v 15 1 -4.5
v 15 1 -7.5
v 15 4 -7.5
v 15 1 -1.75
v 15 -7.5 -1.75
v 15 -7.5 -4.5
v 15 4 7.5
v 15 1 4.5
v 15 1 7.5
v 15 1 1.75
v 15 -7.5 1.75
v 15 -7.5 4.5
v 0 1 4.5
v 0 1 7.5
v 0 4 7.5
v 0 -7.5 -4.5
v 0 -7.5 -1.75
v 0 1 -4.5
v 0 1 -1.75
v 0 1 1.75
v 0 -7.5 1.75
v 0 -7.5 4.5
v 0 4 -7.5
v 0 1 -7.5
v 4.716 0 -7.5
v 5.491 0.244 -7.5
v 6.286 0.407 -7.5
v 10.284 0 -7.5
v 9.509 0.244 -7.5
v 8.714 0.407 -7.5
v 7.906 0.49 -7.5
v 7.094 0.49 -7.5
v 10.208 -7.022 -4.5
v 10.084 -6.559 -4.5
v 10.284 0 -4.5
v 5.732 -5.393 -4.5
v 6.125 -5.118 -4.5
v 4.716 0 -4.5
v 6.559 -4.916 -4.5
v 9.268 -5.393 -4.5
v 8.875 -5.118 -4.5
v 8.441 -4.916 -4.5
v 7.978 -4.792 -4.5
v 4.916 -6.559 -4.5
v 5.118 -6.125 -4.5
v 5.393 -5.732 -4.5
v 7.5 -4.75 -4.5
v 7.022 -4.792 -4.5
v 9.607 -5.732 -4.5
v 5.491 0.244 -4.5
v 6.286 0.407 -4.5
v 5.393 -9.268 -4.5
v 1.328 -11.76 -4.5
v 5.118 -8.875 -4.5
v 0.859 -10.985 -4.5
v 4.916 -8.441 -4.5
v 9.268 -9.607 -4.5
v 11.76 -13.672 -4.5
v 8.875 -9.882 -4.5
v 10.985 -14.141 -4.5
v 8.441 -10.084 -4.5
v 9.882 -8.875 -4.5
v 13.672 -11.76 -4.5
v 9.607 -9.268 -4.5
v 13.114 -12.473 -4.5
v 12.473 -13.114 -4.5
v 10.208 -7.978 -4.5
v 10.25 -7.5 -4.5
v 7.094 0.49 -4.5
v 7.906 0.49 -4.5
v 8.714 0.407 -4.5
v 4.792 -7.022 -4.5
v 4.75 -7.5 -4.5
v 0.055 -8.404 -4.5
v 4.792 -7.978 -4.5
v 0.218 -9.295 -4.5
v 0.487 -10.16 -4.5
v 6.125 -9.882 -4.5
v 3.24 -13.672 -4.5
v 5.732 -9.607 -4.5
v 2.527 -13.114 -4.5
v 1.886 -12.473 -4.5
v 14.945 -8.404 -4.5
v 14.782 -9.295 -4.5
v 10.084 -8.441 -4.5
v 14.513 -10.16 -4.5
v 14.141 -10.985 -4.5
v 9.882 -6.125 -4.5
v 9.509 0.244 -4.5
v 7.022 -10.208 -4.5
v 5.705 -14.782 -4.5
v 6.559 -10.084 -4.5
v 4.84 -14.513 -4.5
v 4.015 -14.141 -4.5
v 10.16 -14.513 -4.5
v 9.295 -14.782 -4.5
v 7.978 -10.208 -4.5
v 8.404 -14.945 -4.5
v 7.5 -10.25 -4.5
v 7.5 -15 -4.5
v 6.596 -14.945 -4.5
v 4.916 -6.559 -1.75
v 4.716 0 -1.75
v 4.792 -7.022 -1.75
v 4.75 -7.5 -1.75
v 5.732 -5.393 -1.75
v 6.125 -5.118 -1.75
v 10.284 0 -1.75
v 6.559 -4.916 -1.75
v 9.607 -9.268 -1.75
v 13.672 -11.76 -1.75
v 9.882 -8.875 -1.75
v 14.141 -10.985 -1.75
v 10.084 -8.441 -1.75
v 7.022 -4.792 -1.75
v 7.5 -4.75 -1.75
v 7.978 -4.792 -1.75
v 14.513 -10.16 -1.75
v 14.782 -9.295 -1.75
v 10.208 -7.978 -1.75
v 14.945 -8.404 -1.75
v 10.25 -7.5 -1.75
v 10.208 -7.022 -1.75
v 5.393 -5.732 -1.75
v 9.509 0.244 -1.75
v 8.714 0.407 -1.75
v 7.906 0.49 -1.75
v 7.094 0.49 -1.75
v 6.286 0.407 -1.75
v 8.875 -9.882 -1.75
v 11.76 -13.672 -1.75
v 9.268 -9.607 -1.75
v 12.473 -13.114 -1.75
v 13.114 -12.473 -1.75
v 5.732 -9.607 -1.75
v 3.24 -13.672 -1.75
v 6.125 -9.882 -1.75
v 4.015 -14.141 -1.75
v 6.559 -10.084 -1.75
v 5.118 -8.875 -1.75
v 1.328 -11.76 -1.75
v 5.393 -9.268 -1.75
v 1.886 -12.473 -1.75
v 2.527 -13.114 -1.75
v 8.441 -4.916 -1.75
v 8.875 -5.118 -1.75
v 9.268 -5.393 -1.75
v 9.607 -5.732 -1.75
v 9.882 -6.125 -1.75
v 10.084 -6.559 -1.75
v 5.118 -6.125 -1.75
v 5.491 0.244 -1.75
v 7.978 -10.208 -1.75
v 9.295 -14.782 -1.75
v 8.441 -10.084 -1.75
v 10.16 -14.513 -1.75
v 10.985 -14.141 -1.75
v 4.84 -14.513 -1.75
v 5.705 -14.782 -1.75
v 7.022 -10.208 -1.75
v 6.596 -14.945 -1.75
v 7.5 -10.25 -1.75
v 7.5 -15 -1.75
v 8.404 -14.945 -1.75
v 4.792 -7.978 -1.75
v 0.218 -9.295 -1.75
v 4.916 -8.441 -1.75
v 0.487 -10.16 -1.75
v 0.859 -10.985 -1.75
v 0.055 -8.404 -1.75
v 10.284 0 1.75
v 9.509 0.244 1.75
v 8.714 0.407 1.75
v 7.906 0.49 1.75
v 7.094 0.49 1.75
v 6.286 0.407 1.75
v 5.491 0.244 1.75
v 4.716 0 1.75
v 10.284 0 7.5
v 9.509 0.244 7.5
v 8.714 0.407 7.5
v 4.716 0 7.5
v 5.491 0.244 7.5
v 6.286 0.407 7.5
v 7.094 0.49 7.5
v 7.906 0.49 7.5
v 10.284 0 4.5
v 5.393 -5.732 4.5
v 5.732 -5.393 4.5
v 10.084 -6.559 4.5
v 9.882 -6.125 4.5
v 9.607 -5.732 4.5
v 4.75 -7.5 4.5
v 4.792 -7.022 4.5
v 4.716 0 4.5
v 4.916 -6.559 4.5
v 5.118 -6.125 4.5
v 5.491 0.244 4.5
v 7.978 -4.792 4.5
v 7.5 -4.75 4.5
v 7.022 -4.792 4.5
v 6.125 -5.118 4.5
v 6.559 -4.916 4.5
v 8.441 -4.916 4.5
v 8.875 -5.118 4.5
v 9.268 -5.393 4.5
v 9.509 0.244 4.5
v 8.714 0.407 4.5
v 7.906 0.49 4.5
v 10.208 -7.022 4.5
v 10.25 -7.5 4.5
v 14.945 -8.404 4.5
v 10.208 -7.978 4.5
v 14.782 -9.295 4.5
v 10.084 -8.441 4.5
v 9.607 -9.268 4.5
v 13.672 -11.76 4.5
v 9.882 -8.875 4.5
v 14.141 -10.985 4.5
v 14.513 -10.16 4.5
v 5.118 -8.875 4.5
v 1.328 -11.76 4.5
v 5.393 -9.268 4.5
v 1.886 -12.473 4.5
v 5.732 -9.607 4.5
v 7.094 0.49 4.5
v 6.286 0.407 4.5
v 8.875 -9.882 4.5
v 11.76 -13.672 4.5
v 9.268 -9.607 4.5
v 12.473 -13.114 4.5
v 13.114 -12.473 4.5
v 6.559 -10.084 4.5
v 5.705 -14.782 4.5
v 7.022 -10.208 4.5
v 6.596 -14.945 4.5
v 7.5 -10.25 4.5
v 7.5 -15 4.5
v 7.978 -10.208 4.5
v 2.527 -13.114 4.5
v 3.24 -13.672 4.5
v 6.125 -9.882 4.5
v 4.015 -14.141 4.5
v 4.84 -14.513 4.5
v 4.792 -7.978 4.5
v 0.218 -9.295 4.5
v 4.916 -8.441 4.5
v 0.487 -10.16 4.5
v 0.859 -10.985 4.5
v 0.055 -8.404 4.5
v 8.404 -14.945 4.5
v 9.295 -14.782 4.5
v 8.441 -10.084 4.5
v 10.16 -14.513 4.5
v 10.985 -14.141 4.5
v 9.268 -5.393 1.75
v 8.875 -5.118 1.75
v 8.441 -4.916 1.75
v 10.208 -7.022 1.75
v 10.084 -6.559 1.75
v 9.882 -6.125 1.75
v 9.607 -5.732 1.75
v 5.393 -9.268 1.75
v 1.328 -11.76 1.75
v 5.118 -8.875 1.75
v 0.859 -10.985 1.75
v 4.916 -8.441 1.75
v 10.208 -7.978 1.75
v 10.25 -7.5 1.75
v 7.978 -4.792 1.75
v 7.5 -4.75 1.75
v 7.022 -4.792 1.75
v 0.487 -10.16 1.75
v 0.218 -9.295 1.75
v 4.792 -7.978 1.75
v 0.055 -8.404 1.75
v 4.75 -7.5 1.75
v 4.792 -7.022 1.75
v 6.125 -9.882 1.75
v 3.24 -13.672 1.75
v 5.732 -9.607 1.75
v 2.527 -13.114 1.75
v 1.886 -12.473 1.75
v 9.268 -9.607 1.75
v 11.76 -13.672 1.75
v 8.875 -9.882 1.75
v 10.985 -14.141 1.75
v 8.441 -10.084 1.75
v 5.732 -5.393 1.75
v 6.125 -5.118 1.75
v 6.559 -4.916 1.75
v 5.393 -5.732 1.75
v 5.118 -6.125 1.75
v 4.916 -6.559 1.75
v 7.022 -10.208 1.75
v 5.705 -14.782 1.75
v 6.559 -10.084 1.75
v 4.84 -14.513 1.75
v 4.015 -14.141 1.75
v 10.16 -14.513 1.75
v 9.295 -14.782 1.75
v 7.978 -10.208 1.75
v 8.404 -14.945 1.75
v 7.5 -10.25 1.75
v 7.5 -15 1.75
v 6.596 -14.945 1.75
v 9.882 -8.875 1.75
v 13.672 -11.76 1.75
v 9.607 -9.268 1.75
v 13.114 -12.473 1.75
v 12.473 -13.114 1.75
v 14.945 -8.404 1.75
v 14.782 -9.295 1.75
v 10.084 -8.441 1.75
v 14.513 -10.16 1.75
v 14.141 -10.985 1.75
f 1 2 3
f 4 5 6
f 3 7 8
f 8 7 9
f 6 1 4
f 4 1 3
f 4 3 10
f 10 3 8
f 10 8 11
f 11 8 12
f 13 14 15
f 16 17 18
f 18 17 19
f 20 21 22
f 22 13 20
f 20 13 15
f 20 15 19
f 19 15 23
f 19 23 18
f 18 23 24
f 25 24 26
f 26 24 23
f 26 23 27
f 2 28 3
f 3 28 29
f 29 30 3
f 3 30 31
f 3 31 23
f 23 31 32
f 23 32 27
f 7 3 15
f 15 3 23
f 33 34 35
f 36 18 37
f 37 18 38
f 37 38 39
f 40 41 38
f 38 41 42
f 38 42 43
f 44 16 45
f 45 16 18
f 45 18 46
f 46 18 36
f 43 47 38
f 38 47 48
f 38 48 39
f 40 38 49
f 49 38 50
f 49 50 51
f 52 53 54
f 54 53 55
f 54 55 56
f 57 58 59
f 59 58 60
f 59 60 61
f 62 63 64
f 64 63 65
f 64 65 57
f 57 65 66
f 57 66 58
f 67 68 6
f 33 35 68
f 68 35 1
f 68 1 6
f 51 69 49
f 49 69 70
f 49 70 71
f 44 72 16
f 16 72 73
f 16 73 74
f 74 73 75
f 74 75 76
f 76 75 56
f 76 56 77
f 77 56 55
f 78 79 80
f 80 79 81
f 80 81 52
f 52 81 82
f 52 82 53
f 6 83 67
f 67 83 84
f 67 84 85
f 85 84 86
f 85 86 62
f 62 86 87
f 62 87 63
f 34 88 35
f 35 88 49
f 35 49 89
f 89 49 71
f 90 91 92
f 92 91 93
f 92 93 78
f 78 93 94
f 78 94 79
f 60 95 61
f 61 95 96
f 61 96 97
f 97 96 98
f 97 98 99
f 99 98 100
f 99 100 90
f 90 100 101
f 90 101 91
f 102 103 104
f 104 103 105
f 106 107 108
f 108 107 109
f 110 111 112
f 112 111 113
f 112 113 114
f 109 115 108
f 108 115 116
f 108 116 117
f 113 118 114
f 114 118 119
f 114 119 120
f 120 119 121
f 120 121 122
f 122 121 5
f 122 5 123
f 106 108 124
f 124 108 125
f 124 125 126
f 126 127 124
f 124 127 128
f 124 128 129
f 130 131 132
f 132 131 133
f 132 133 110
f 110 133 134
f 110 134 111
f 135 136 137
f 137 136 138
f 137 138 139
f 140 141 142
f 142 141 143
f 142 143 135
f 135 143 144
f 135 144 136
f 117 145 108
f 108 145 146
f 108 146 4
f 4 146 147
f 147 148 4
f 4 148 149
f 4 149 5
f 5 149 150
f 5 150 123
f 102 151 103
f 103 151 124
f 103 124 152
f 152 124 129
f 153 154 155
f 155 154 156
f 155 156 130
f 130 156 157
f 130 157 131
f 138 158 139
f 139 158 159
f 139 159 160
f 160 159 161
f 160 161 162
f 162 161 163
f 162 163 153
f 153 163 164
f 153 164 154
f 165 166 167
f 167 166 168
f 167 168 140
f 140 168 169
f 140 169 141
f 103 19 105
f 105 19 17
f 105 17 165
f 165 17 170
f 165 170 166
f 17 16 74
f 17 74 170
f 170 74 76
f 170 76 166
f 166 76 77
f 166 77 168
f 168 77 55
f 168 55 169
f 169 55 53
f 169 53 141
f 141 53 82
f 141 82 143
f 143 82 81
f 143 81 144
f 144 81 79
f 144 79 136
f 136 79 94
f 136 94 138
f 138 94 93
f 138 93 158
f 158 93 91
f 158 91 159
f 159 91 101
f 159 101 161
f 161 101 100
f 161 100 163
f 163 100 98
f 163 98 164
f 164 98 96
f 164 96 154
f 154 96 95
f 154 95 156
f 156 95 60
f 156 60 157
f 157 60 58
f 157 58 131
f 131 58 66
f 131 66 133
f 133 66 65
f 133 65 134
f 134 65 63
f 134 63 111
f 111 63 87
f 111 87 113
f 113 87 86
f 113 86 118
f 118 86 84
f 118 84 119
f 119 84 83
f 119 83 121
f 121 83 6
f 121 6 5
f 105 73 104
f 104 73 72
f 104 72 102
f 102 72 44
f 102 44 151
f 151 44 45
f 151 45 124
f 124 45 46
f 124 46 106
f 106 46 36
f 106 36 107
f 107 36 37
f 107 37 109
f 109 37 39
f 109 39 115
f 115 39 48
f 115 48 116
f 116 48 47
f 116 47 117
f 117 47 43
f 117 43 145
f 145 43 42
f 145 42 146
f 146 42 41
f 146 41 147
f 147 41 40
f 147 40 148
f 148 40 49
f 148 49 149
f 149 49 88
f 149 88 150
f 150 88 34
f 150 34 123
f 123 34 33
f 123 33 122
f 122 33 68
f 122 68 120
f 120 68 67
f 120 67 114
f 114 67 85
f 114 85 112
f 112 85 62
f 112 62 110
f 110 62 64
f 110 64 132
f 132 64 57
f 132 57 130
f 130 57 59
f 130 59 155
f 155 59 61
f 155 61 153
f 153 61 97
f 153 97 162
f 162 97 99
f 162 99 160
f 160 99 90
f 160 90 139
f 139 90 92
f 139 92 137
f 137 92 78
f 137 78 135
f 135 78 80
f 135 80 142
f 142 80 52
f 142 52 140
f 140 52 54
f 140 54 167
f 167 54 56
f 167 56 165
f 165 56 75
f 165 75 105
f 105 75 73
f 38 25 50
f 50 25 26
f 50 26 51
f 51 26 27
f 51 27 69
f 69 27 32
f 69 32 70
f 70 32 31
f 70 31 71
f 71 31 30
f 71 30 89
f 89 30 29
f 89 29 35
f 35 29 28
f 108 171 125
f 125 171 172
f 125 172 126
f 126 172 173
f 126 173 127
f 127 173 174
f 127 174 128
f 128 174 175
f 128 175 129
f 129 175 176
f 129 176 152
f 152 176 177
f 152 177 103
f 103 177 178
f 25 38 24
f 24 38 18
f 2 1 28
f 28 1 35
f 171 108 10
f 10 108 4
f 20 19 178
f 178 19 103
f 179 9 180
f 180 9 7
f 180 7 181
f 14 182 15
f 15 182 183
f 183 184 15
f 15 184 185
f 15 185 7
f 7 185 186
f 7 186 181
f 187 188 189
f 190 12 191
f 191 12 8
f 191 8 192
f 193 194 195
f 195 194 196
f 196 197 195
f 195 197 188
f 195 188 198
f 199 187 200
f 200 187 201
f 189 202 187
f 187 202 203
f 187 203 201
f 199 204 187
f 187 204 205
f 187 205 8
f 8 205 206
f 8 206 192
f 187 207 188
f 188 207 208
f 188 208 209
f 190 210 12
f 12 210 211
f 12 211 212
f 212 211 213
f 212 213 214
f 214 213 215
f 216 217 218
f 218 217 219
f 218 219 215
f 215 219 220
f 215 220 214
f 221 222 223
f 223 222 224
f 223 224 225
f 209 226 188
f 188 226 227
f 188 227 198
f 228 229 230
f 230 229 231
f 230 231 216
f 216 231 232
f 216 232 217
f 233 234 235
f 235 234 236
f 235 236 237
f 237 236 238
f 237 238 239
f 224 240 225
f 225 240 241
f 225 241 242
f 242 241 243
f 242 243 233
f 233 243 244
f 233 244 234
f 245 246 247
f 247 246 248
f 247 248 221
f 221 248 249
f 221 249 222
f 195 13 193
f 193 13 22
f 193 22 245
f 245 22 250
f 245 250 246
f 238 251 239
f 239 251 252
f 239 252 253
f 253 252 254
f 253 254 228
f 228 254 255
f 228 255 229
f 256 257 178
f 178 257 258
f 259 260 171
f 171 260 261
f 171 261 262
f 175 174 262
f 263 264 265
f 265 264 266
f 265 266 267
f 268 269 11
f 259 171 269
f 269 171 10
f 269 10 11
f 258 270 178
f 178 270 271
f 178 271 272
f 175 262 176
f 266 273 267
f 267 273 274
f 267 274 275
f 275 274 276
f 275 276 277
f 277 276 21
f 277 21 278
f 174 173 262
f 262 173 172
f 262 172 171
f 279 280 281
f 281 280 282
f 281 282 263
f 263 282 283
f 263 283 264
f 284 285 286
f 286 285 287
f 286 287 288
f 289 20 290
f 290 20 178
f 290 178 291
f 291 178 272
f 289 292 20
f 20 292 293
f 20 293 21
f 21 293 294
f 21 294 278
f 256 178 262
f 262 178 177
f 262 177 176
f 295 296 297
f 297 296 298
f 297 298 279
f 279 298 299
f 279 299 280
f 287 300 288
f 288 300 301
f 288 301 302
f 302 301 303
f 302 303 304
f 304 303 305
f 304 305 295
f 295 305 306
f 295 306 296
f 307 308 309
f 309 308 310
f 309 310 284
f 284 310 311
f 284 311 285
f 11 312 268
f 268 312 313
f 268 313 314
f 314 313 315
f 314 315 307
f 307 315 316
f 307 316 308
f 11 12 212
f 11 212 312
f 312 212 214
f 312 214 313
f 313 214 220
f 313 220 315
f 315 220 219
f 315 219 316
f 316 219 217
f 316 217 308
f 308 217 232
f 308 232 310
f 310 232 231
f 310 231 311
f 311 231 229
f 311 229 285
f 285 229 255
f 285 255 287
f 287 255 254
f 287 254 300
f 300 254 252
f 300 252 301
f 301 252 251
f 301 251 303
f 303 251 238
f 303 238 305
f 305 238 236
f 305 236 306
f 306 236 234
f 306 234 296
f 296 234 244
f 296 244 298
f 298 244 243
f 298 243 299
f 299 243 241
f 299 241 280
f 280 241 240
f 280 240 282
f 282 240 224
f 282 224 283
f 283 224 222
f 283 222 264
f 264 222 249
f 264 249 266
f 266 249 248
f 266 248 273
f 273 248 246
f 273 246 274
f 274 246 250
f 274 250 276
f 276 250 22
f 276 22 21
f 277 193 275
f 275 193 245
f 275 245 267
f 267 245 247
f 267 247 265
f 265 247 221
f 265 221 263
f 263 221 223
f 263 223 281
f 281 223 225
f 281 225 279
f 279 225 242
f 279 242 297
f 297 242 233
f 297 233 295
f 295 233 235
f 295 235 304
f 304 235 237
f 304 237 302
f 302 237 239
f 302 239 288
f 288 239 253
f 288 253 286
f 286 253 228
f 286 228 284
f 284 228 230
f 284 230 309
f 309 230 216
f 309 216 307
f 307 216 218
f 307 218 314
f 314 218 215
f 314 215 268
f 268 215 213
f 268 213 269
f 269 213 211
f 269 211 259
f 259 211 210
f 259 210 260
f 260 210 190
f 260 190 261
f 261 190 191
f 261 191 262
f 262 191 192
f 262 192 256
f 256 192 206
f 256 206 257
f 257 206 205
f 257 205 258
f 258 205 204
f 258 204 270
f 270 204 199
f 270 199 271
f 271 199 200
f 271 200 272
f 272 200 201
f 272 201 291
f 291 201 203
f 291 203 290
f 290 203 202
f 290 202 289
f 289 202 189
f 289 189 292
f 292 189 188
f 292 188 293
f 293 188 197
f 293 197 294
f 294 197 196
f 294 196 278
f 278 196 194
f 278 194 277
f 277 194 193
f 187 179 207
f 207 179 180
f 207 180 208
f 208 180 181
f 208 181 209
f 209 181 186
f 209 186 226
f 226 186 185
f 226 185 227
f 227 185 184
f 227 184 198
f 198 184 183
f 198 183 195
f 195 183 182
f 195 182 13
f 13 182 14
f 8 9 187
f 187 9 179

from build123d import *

# Parameters (mm, degrees)
SKETCH1_W           = 15
SKETCH1_H           = 7.5
BOSS_EXTRUDE1_DEPTH = 4
SKETCH3_W           = 15
SKETCH3_H           = 2.75
BOSS_EXTRUDE3_DEPTH = 15
CUT_EXTRUDE2_DEPTH  = 22.685248442
SKETCH6_R           = 2.75
CUT_EXTRUDE3_DEPTH  = 23.5
SKETCH10_R          = 8
CUT_EXTRUDE6_DEPTH  = 3
CUT_EXTRUDE9_START  = -1.75
SKETCH13_R          = 8
CUT_EXTRUDE9_DEPTH  = 1.75
CUT_EXTRUDE8_DEPTH  = 3
CUT_EXTRUDE10_DEPTH = 1.75


with BuildPart() as part:
    # Sketch1 → Boss-Extrude1 (new body)
    with BuildSketch(Plane(origin=(0, 0, 0), x_dir=(1, 0, 0), z_dir=(0, 1, 0))):
        with Locations((7.5, 3.75)):
            Rectangle(SKETCH1_W, SKETCH1_H)
    extrude(amount=BOSS_EXTRUDE1_DEPTH)

    # Sketch3 → Boss-Extrude3 (add)
    with BuildSketch(Plane.XZ):
        with Locations((7.5, -3.125)):
            Rectangle(SKETCH3_W, SKETCH3_H)
    extrude(amount=BOSS_EXTRUDE3_DEPTH)

    # Sketch5 → Cut-Extrude2 (cut, through all)
    with BuildSketch(Plane(origin=(0, 0, -4.5), x_dir=(-1, 0, 0), z_dir=(0, 0, -1))):
        with BuildLine():
            Line((-15, -7.5), (-15, -17.341994959))
            Line((-15, -17.341994959), (0, -17.341994959))
            Line((0, -17.341994959), (0, -7.5))
            ThreePointArc((0, -7.5), (-7.5, -15), (-15, -7.5))
        make_face()
    extrude(amount=-CUT_EXTRUDE2_DEPTH, mode=Mode.SUBTRACT)

    # Sketch6 → Cut-Extrude3 (cut, through all)
    with BuildSketch(Plane(origin=(0, 0, -7.5), x_dir=(-1, 0, 0), z_dir=(0, 0, -1))):
        with Locations((-7.5, -7.5)):
            Circle(SKETCH6_R)
    extrude(amount=-CUT_EXTRUDE3_DEPTH, mode=Mode.SUBTRACT)

    # Sketch10 → Cut-Extrude6 (cut)
    with BuildSketch(Plane(origin=(0, 0, -7.5), x_dir=(-1, 0, 0), z_dir=(0, 0, -1))):
        with Locations((-7.5, -7.5)):
            Circle(SKETCH10_R)
    extrude(amount=-CUT_EXTRUDE6_DEPTH, mode=Mode.SUBTRACT)

    # Sketch13 → Cut-Extrude9 (cut)
    with BuildSketch(Plane.XY.offset(CUT_EXTRUDE9_START)):
        with Locations((7.5, -7.5)):
            Circle(SKETCH13_R)
    extrude(amount=CUT_EXTRUDE9_DEPTH, mode=Mode.SUBTRACT)

    # Sketch12 → Cut-Extrude8 (cut)
    with BuildSketch(Plane(origin=(0, 0, -7.5), x_dir=(-1, 0, 0), z_dir=(0, 0, -1))):
        Polygon((-10.283882181, 0), (-15, 1), (-15, 0), align=None)
        Polygon((-4.716117819, 0), (0, 1), (0, 0), align=None)
    extrude(amount=-CUT_EXTRUDE8_DEPTH, mode=Mode.SUBTRACT)

    # Sketch14 → Cut-Extrude10 (cut)
    with BuildSketch(Plane.XY):
        Polygon((4.716117819, 0), (0, 1), (0, 0), align=None)
        Polygon((10.283882181, 0), (15, 1), (15, 0), align=None)
    extrude(amount=-CUT_EXTRUDE10_DEPTH, mode=Mode.SUBTRACT)

    # Mirror1: part across plane


with BuildPart() as part_1:
    add(part.part)
    add(part.part.mirror(Plane(origin=(0, 4, 0), x_dir=(1, 0, 0), z_dir=(0, 0, -1))))


solid = part_1.part
